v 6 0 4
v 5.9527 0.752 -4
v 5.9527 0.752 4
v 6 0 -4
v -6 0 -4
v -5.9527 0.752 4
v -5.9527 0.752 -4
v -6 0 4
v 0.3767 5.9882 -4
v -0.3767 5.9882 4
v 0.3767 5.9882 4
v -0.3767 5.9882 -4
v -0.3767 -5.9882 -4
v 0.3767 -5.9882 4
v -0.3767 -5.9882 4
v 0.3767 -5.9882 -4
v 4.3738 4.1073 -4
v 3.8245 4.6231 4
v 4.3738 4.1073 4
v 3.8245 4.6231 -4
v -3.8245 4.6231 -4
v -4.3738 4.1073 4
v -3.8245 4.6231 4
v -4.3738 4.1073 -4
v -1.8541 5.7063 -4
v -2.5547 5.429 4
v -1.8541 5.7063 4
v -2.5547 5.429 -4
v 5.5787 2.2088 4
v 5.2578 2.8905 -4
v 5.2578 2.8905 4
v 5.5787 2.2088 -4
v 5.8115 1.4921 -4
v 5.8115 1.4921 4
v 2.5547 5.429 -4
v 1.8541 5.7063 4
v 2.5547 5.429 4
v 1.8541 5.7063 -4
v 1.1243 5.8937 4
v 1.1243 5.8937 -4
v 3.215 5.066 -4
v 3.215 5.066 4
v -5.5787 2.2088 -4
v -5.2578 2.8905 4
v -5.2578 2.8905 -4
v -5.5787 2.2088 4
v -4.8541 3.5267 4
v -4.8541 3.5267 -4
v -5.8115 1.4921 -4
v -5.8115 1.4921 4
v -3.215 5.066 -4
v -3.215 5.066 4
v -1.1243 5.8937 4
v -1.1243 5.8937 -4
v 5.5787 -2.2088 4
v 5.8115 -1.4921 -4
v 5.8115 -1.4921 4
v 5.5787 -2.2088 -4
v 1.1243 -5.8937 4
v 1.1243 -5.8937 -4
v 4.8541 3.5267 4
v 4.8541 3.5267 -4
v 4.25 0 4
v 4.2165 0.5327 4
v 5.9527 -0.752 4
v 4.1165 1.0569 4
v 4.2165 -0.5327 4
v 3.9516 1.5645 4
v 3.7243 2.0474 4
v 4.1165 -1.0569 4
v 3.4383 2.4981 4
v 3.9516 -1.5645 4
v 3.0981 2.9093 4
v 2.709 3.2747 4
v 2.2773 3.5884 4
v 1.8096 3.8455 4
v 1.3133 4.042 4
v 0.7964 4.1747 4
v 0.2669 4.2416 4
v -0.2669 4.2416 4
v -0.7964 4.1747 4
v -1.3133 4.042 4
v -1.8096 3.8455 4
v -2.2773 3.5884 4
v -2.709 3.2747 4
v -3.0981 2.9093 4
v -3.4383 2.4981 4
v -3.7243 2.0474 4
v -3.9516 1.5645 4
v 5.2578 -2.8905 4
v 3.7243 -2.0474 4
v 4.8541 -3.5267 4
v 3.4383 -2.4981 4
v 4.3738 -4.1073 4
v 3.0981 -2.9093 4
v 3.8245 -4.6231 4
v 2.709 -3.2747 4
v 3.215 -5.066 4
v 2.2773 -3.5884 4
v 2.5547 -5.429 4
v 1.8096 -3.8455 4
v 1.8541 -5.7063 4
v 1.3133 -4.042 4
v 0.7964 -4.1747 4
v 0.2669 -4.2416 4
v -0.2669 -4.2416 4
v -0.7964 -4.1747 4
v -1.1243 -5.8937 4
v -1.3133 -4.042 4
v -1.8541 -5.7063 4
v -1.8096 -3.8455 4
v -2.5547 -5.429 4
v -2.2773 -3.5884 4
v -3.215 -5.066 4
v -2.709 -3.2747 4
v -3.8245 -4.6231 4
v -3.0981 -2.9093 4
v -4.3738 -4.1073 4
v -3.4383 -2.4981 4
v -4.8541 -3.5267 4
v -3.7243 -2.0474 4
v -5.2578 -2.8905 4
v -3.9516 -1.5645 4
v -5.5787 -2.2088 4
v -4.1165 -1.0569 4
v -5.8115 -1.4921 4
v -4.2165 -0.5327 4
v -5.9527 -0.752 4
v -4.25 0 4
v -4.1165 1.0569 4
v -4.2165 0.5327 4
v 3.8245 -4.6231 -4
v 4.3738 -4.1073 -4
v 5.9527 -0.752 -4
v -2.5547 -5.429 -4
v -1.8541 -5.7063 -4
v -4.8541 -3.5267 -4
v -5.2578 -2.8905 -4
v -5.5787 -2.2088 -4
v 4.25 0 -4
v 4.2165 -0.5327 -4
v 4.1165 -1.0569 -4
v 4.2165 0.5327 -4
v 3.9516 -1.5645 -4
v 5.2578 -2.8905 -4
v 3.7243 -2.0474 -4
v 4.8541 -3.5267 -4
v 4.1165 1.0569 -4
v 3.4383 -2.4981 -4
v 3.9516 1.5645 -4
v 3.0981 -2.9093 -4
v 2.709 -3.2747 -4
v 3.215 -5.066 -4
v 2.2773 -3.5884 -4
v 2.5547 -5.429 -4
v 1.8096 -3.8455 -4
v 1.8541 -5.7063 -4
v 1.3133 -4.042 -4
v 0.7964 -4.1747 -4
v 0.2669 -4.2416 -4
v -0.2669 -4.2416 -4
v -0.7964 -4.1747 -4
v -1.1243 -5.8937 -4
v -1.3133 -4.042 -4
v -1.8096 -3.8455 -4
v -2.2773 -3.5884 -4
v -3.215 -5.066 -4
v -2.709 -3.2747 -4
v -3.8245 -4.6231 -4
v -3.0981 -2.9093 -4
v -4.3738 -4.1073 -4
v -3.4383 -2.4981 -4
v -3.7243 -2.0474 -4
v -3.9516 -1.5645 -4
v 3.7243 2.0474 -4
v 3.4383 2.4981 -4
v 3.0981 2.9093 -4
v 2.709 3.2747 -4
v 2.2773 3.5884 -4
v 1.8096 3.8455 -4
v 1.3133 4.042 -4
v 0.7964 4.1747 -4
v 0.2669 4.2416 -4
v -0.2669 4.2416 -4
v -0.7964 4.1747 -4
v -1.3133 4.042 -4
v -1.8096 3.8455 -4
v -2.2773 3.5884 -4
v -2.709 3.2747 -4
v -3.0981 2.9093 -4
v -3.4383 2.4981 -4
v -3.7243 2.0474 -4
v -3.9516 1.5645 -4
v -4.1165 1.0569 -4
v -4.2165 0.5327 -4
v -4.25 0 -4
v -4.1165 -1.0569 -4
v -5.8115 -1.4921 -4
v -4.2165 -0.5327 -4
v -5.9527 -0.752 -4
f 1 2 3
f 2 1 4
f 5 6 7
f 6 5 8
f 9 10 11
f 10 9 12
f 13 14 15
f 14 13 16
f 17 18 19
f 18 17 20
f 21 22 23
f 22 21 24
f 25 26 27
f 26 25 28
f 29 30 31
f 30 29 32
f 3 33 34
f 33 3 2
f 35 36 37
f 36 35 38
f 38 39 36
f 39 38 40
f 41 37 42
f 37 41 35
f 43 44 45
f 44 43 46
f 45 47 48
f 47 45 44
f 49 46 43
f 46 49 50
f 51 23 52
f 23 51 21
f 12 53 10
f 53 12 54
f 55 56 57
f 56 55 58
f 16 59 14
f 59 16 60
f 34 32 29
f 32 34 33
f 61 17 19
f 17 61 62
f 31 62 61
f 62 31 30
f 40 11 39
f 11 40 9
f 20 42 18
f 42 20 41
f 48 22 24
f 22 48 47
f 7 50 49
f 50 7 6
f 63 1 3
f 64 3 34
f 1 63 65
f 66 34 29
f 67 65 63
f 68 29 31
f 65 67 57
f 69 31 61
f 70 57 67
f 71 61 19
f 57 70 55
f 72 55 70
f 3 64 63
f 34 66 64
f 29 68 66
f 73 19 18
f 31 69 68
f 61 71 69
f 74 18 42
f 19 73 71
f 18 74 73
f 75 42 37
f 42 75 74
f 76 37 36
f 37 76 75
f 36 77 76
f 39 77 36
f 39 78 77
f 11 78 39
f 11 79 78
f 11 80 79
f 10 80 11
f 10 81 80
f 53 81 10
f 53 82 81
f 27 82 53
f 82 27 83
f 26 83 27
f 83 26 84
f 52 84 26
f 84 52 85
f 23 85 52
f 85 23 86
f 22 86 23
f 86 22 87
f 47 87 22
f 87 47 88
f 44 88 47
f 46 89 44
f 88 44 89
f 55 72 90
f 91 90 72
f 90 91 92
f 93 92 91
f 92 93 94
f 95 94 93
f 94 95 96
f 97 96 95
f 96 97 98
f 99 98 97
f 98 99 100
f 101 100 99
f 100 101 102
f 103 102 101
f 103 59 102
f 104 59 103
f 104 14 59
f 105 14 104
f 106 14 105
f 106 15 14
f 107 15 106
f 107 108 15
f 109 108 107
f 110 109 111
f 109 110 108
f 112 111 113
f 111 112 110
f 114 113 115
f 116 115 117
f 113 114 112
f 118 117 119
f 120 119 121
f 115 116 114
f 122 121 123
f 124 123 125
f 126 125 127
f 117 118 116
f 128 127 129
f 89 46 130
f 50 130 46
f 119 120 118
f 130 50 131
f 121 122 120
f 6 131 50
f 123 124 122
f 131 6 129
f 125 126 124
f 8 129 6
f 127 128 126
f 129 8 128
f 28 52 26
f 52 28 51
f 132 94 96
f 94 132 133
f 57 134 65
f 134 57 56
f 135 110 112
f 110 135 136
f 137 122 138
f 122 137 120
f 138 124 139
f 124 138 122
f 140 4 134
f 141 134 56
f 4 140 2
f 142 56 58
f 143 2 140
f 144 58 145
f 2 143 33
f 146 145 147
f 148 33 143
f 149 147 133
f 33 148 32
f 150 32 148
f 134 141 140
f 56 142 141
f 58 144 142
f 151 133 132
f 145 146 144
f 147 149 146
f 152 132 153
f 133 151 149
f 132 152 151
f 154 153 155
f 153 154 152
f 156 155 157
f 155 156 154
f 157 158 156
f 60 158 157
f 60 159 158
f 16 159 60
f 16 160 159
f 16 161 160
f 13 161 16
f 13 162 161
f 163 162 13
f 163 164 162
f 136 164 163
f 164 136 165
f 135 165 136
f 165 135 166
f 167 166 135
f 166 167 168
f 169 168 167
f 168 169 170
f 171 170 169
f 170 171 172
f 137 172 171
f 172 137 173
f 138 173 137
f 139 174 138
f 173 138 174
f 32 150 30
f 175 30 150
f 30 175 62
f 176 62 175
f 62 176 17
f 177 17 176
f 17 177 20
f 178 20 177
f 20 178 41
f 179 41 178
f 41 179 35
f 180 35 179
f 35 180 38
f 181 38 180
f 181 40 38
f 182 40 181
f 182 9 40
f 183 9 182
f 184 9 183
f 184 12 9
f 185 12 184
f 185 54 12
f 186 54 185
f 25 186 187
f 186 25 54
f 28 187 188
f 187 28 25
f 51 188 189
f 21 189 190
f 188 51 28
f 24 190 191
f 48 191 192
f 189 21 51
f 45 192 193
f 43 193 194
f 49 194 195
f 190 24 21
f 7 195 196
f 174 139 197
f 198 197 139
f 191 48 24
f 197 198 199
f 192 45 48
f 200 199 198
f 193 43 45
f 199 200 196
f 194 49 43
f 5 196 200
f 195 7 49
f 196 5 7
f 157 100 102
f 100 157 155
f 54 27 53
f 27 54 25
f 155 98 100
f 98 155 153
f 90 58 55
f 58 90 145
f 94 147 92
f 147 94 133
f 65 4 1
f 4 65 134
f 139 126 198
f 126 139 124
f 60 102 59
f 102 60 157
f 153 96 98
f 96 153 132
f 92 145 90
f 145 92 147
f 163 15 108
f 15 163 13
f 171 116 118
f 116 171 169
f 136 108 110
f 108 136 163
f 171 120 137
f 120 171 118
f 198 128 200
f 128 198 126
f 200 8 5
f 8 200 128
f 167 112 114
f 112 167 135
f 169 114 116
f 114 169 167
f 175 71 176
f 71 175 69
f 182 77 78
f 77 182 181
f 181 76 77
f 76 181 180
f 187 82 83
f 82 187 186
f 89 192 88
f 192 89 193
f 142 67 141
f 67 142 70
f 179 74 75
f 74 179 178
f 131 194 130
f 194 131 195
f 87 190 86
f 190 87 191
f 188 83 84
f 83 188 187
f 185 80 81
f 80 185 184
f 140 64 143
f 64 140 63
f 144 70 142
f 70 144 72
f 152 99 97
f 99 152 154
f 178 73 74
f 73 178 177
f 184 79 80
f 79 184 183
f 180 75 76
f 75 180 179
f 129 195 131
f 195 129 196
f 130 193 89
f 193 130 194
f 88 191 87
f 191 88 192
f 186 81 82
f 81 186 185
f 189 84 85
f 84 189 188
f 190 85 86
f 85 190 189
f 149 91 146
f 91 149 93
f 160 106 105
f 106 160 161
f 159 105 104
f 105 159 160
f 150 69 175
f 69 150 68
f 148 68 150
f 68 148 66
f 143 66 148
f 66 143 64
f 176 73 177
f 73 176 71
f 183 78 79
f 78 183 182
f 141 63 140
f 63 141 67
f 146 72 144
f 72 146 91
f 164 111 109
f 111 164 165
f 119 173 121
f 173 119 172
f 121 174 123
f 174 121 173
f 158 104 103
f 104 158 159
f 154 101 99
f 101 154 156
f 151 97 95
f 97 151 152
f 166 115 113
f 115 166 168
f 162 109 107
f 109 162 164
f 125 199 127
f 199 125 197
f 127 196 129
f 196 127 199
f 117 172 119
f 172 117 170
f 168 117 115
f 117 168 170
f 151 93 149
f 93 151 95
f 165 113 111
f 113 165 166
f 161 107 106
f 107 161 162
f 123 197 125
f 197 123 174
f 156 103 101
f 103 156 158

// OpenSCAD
$fn = 50;


difference() {
	union() {
		translate(v = [0, 0, -4.0000000000]) {
			cylinder(h = 8, r = 6.0000000000);
		}
	}
	union() {
		translate(v = [0, 0, -100.0000000000]) {
			cylinder(h = 200, r = 4.2500000000);
		}
	}
}
